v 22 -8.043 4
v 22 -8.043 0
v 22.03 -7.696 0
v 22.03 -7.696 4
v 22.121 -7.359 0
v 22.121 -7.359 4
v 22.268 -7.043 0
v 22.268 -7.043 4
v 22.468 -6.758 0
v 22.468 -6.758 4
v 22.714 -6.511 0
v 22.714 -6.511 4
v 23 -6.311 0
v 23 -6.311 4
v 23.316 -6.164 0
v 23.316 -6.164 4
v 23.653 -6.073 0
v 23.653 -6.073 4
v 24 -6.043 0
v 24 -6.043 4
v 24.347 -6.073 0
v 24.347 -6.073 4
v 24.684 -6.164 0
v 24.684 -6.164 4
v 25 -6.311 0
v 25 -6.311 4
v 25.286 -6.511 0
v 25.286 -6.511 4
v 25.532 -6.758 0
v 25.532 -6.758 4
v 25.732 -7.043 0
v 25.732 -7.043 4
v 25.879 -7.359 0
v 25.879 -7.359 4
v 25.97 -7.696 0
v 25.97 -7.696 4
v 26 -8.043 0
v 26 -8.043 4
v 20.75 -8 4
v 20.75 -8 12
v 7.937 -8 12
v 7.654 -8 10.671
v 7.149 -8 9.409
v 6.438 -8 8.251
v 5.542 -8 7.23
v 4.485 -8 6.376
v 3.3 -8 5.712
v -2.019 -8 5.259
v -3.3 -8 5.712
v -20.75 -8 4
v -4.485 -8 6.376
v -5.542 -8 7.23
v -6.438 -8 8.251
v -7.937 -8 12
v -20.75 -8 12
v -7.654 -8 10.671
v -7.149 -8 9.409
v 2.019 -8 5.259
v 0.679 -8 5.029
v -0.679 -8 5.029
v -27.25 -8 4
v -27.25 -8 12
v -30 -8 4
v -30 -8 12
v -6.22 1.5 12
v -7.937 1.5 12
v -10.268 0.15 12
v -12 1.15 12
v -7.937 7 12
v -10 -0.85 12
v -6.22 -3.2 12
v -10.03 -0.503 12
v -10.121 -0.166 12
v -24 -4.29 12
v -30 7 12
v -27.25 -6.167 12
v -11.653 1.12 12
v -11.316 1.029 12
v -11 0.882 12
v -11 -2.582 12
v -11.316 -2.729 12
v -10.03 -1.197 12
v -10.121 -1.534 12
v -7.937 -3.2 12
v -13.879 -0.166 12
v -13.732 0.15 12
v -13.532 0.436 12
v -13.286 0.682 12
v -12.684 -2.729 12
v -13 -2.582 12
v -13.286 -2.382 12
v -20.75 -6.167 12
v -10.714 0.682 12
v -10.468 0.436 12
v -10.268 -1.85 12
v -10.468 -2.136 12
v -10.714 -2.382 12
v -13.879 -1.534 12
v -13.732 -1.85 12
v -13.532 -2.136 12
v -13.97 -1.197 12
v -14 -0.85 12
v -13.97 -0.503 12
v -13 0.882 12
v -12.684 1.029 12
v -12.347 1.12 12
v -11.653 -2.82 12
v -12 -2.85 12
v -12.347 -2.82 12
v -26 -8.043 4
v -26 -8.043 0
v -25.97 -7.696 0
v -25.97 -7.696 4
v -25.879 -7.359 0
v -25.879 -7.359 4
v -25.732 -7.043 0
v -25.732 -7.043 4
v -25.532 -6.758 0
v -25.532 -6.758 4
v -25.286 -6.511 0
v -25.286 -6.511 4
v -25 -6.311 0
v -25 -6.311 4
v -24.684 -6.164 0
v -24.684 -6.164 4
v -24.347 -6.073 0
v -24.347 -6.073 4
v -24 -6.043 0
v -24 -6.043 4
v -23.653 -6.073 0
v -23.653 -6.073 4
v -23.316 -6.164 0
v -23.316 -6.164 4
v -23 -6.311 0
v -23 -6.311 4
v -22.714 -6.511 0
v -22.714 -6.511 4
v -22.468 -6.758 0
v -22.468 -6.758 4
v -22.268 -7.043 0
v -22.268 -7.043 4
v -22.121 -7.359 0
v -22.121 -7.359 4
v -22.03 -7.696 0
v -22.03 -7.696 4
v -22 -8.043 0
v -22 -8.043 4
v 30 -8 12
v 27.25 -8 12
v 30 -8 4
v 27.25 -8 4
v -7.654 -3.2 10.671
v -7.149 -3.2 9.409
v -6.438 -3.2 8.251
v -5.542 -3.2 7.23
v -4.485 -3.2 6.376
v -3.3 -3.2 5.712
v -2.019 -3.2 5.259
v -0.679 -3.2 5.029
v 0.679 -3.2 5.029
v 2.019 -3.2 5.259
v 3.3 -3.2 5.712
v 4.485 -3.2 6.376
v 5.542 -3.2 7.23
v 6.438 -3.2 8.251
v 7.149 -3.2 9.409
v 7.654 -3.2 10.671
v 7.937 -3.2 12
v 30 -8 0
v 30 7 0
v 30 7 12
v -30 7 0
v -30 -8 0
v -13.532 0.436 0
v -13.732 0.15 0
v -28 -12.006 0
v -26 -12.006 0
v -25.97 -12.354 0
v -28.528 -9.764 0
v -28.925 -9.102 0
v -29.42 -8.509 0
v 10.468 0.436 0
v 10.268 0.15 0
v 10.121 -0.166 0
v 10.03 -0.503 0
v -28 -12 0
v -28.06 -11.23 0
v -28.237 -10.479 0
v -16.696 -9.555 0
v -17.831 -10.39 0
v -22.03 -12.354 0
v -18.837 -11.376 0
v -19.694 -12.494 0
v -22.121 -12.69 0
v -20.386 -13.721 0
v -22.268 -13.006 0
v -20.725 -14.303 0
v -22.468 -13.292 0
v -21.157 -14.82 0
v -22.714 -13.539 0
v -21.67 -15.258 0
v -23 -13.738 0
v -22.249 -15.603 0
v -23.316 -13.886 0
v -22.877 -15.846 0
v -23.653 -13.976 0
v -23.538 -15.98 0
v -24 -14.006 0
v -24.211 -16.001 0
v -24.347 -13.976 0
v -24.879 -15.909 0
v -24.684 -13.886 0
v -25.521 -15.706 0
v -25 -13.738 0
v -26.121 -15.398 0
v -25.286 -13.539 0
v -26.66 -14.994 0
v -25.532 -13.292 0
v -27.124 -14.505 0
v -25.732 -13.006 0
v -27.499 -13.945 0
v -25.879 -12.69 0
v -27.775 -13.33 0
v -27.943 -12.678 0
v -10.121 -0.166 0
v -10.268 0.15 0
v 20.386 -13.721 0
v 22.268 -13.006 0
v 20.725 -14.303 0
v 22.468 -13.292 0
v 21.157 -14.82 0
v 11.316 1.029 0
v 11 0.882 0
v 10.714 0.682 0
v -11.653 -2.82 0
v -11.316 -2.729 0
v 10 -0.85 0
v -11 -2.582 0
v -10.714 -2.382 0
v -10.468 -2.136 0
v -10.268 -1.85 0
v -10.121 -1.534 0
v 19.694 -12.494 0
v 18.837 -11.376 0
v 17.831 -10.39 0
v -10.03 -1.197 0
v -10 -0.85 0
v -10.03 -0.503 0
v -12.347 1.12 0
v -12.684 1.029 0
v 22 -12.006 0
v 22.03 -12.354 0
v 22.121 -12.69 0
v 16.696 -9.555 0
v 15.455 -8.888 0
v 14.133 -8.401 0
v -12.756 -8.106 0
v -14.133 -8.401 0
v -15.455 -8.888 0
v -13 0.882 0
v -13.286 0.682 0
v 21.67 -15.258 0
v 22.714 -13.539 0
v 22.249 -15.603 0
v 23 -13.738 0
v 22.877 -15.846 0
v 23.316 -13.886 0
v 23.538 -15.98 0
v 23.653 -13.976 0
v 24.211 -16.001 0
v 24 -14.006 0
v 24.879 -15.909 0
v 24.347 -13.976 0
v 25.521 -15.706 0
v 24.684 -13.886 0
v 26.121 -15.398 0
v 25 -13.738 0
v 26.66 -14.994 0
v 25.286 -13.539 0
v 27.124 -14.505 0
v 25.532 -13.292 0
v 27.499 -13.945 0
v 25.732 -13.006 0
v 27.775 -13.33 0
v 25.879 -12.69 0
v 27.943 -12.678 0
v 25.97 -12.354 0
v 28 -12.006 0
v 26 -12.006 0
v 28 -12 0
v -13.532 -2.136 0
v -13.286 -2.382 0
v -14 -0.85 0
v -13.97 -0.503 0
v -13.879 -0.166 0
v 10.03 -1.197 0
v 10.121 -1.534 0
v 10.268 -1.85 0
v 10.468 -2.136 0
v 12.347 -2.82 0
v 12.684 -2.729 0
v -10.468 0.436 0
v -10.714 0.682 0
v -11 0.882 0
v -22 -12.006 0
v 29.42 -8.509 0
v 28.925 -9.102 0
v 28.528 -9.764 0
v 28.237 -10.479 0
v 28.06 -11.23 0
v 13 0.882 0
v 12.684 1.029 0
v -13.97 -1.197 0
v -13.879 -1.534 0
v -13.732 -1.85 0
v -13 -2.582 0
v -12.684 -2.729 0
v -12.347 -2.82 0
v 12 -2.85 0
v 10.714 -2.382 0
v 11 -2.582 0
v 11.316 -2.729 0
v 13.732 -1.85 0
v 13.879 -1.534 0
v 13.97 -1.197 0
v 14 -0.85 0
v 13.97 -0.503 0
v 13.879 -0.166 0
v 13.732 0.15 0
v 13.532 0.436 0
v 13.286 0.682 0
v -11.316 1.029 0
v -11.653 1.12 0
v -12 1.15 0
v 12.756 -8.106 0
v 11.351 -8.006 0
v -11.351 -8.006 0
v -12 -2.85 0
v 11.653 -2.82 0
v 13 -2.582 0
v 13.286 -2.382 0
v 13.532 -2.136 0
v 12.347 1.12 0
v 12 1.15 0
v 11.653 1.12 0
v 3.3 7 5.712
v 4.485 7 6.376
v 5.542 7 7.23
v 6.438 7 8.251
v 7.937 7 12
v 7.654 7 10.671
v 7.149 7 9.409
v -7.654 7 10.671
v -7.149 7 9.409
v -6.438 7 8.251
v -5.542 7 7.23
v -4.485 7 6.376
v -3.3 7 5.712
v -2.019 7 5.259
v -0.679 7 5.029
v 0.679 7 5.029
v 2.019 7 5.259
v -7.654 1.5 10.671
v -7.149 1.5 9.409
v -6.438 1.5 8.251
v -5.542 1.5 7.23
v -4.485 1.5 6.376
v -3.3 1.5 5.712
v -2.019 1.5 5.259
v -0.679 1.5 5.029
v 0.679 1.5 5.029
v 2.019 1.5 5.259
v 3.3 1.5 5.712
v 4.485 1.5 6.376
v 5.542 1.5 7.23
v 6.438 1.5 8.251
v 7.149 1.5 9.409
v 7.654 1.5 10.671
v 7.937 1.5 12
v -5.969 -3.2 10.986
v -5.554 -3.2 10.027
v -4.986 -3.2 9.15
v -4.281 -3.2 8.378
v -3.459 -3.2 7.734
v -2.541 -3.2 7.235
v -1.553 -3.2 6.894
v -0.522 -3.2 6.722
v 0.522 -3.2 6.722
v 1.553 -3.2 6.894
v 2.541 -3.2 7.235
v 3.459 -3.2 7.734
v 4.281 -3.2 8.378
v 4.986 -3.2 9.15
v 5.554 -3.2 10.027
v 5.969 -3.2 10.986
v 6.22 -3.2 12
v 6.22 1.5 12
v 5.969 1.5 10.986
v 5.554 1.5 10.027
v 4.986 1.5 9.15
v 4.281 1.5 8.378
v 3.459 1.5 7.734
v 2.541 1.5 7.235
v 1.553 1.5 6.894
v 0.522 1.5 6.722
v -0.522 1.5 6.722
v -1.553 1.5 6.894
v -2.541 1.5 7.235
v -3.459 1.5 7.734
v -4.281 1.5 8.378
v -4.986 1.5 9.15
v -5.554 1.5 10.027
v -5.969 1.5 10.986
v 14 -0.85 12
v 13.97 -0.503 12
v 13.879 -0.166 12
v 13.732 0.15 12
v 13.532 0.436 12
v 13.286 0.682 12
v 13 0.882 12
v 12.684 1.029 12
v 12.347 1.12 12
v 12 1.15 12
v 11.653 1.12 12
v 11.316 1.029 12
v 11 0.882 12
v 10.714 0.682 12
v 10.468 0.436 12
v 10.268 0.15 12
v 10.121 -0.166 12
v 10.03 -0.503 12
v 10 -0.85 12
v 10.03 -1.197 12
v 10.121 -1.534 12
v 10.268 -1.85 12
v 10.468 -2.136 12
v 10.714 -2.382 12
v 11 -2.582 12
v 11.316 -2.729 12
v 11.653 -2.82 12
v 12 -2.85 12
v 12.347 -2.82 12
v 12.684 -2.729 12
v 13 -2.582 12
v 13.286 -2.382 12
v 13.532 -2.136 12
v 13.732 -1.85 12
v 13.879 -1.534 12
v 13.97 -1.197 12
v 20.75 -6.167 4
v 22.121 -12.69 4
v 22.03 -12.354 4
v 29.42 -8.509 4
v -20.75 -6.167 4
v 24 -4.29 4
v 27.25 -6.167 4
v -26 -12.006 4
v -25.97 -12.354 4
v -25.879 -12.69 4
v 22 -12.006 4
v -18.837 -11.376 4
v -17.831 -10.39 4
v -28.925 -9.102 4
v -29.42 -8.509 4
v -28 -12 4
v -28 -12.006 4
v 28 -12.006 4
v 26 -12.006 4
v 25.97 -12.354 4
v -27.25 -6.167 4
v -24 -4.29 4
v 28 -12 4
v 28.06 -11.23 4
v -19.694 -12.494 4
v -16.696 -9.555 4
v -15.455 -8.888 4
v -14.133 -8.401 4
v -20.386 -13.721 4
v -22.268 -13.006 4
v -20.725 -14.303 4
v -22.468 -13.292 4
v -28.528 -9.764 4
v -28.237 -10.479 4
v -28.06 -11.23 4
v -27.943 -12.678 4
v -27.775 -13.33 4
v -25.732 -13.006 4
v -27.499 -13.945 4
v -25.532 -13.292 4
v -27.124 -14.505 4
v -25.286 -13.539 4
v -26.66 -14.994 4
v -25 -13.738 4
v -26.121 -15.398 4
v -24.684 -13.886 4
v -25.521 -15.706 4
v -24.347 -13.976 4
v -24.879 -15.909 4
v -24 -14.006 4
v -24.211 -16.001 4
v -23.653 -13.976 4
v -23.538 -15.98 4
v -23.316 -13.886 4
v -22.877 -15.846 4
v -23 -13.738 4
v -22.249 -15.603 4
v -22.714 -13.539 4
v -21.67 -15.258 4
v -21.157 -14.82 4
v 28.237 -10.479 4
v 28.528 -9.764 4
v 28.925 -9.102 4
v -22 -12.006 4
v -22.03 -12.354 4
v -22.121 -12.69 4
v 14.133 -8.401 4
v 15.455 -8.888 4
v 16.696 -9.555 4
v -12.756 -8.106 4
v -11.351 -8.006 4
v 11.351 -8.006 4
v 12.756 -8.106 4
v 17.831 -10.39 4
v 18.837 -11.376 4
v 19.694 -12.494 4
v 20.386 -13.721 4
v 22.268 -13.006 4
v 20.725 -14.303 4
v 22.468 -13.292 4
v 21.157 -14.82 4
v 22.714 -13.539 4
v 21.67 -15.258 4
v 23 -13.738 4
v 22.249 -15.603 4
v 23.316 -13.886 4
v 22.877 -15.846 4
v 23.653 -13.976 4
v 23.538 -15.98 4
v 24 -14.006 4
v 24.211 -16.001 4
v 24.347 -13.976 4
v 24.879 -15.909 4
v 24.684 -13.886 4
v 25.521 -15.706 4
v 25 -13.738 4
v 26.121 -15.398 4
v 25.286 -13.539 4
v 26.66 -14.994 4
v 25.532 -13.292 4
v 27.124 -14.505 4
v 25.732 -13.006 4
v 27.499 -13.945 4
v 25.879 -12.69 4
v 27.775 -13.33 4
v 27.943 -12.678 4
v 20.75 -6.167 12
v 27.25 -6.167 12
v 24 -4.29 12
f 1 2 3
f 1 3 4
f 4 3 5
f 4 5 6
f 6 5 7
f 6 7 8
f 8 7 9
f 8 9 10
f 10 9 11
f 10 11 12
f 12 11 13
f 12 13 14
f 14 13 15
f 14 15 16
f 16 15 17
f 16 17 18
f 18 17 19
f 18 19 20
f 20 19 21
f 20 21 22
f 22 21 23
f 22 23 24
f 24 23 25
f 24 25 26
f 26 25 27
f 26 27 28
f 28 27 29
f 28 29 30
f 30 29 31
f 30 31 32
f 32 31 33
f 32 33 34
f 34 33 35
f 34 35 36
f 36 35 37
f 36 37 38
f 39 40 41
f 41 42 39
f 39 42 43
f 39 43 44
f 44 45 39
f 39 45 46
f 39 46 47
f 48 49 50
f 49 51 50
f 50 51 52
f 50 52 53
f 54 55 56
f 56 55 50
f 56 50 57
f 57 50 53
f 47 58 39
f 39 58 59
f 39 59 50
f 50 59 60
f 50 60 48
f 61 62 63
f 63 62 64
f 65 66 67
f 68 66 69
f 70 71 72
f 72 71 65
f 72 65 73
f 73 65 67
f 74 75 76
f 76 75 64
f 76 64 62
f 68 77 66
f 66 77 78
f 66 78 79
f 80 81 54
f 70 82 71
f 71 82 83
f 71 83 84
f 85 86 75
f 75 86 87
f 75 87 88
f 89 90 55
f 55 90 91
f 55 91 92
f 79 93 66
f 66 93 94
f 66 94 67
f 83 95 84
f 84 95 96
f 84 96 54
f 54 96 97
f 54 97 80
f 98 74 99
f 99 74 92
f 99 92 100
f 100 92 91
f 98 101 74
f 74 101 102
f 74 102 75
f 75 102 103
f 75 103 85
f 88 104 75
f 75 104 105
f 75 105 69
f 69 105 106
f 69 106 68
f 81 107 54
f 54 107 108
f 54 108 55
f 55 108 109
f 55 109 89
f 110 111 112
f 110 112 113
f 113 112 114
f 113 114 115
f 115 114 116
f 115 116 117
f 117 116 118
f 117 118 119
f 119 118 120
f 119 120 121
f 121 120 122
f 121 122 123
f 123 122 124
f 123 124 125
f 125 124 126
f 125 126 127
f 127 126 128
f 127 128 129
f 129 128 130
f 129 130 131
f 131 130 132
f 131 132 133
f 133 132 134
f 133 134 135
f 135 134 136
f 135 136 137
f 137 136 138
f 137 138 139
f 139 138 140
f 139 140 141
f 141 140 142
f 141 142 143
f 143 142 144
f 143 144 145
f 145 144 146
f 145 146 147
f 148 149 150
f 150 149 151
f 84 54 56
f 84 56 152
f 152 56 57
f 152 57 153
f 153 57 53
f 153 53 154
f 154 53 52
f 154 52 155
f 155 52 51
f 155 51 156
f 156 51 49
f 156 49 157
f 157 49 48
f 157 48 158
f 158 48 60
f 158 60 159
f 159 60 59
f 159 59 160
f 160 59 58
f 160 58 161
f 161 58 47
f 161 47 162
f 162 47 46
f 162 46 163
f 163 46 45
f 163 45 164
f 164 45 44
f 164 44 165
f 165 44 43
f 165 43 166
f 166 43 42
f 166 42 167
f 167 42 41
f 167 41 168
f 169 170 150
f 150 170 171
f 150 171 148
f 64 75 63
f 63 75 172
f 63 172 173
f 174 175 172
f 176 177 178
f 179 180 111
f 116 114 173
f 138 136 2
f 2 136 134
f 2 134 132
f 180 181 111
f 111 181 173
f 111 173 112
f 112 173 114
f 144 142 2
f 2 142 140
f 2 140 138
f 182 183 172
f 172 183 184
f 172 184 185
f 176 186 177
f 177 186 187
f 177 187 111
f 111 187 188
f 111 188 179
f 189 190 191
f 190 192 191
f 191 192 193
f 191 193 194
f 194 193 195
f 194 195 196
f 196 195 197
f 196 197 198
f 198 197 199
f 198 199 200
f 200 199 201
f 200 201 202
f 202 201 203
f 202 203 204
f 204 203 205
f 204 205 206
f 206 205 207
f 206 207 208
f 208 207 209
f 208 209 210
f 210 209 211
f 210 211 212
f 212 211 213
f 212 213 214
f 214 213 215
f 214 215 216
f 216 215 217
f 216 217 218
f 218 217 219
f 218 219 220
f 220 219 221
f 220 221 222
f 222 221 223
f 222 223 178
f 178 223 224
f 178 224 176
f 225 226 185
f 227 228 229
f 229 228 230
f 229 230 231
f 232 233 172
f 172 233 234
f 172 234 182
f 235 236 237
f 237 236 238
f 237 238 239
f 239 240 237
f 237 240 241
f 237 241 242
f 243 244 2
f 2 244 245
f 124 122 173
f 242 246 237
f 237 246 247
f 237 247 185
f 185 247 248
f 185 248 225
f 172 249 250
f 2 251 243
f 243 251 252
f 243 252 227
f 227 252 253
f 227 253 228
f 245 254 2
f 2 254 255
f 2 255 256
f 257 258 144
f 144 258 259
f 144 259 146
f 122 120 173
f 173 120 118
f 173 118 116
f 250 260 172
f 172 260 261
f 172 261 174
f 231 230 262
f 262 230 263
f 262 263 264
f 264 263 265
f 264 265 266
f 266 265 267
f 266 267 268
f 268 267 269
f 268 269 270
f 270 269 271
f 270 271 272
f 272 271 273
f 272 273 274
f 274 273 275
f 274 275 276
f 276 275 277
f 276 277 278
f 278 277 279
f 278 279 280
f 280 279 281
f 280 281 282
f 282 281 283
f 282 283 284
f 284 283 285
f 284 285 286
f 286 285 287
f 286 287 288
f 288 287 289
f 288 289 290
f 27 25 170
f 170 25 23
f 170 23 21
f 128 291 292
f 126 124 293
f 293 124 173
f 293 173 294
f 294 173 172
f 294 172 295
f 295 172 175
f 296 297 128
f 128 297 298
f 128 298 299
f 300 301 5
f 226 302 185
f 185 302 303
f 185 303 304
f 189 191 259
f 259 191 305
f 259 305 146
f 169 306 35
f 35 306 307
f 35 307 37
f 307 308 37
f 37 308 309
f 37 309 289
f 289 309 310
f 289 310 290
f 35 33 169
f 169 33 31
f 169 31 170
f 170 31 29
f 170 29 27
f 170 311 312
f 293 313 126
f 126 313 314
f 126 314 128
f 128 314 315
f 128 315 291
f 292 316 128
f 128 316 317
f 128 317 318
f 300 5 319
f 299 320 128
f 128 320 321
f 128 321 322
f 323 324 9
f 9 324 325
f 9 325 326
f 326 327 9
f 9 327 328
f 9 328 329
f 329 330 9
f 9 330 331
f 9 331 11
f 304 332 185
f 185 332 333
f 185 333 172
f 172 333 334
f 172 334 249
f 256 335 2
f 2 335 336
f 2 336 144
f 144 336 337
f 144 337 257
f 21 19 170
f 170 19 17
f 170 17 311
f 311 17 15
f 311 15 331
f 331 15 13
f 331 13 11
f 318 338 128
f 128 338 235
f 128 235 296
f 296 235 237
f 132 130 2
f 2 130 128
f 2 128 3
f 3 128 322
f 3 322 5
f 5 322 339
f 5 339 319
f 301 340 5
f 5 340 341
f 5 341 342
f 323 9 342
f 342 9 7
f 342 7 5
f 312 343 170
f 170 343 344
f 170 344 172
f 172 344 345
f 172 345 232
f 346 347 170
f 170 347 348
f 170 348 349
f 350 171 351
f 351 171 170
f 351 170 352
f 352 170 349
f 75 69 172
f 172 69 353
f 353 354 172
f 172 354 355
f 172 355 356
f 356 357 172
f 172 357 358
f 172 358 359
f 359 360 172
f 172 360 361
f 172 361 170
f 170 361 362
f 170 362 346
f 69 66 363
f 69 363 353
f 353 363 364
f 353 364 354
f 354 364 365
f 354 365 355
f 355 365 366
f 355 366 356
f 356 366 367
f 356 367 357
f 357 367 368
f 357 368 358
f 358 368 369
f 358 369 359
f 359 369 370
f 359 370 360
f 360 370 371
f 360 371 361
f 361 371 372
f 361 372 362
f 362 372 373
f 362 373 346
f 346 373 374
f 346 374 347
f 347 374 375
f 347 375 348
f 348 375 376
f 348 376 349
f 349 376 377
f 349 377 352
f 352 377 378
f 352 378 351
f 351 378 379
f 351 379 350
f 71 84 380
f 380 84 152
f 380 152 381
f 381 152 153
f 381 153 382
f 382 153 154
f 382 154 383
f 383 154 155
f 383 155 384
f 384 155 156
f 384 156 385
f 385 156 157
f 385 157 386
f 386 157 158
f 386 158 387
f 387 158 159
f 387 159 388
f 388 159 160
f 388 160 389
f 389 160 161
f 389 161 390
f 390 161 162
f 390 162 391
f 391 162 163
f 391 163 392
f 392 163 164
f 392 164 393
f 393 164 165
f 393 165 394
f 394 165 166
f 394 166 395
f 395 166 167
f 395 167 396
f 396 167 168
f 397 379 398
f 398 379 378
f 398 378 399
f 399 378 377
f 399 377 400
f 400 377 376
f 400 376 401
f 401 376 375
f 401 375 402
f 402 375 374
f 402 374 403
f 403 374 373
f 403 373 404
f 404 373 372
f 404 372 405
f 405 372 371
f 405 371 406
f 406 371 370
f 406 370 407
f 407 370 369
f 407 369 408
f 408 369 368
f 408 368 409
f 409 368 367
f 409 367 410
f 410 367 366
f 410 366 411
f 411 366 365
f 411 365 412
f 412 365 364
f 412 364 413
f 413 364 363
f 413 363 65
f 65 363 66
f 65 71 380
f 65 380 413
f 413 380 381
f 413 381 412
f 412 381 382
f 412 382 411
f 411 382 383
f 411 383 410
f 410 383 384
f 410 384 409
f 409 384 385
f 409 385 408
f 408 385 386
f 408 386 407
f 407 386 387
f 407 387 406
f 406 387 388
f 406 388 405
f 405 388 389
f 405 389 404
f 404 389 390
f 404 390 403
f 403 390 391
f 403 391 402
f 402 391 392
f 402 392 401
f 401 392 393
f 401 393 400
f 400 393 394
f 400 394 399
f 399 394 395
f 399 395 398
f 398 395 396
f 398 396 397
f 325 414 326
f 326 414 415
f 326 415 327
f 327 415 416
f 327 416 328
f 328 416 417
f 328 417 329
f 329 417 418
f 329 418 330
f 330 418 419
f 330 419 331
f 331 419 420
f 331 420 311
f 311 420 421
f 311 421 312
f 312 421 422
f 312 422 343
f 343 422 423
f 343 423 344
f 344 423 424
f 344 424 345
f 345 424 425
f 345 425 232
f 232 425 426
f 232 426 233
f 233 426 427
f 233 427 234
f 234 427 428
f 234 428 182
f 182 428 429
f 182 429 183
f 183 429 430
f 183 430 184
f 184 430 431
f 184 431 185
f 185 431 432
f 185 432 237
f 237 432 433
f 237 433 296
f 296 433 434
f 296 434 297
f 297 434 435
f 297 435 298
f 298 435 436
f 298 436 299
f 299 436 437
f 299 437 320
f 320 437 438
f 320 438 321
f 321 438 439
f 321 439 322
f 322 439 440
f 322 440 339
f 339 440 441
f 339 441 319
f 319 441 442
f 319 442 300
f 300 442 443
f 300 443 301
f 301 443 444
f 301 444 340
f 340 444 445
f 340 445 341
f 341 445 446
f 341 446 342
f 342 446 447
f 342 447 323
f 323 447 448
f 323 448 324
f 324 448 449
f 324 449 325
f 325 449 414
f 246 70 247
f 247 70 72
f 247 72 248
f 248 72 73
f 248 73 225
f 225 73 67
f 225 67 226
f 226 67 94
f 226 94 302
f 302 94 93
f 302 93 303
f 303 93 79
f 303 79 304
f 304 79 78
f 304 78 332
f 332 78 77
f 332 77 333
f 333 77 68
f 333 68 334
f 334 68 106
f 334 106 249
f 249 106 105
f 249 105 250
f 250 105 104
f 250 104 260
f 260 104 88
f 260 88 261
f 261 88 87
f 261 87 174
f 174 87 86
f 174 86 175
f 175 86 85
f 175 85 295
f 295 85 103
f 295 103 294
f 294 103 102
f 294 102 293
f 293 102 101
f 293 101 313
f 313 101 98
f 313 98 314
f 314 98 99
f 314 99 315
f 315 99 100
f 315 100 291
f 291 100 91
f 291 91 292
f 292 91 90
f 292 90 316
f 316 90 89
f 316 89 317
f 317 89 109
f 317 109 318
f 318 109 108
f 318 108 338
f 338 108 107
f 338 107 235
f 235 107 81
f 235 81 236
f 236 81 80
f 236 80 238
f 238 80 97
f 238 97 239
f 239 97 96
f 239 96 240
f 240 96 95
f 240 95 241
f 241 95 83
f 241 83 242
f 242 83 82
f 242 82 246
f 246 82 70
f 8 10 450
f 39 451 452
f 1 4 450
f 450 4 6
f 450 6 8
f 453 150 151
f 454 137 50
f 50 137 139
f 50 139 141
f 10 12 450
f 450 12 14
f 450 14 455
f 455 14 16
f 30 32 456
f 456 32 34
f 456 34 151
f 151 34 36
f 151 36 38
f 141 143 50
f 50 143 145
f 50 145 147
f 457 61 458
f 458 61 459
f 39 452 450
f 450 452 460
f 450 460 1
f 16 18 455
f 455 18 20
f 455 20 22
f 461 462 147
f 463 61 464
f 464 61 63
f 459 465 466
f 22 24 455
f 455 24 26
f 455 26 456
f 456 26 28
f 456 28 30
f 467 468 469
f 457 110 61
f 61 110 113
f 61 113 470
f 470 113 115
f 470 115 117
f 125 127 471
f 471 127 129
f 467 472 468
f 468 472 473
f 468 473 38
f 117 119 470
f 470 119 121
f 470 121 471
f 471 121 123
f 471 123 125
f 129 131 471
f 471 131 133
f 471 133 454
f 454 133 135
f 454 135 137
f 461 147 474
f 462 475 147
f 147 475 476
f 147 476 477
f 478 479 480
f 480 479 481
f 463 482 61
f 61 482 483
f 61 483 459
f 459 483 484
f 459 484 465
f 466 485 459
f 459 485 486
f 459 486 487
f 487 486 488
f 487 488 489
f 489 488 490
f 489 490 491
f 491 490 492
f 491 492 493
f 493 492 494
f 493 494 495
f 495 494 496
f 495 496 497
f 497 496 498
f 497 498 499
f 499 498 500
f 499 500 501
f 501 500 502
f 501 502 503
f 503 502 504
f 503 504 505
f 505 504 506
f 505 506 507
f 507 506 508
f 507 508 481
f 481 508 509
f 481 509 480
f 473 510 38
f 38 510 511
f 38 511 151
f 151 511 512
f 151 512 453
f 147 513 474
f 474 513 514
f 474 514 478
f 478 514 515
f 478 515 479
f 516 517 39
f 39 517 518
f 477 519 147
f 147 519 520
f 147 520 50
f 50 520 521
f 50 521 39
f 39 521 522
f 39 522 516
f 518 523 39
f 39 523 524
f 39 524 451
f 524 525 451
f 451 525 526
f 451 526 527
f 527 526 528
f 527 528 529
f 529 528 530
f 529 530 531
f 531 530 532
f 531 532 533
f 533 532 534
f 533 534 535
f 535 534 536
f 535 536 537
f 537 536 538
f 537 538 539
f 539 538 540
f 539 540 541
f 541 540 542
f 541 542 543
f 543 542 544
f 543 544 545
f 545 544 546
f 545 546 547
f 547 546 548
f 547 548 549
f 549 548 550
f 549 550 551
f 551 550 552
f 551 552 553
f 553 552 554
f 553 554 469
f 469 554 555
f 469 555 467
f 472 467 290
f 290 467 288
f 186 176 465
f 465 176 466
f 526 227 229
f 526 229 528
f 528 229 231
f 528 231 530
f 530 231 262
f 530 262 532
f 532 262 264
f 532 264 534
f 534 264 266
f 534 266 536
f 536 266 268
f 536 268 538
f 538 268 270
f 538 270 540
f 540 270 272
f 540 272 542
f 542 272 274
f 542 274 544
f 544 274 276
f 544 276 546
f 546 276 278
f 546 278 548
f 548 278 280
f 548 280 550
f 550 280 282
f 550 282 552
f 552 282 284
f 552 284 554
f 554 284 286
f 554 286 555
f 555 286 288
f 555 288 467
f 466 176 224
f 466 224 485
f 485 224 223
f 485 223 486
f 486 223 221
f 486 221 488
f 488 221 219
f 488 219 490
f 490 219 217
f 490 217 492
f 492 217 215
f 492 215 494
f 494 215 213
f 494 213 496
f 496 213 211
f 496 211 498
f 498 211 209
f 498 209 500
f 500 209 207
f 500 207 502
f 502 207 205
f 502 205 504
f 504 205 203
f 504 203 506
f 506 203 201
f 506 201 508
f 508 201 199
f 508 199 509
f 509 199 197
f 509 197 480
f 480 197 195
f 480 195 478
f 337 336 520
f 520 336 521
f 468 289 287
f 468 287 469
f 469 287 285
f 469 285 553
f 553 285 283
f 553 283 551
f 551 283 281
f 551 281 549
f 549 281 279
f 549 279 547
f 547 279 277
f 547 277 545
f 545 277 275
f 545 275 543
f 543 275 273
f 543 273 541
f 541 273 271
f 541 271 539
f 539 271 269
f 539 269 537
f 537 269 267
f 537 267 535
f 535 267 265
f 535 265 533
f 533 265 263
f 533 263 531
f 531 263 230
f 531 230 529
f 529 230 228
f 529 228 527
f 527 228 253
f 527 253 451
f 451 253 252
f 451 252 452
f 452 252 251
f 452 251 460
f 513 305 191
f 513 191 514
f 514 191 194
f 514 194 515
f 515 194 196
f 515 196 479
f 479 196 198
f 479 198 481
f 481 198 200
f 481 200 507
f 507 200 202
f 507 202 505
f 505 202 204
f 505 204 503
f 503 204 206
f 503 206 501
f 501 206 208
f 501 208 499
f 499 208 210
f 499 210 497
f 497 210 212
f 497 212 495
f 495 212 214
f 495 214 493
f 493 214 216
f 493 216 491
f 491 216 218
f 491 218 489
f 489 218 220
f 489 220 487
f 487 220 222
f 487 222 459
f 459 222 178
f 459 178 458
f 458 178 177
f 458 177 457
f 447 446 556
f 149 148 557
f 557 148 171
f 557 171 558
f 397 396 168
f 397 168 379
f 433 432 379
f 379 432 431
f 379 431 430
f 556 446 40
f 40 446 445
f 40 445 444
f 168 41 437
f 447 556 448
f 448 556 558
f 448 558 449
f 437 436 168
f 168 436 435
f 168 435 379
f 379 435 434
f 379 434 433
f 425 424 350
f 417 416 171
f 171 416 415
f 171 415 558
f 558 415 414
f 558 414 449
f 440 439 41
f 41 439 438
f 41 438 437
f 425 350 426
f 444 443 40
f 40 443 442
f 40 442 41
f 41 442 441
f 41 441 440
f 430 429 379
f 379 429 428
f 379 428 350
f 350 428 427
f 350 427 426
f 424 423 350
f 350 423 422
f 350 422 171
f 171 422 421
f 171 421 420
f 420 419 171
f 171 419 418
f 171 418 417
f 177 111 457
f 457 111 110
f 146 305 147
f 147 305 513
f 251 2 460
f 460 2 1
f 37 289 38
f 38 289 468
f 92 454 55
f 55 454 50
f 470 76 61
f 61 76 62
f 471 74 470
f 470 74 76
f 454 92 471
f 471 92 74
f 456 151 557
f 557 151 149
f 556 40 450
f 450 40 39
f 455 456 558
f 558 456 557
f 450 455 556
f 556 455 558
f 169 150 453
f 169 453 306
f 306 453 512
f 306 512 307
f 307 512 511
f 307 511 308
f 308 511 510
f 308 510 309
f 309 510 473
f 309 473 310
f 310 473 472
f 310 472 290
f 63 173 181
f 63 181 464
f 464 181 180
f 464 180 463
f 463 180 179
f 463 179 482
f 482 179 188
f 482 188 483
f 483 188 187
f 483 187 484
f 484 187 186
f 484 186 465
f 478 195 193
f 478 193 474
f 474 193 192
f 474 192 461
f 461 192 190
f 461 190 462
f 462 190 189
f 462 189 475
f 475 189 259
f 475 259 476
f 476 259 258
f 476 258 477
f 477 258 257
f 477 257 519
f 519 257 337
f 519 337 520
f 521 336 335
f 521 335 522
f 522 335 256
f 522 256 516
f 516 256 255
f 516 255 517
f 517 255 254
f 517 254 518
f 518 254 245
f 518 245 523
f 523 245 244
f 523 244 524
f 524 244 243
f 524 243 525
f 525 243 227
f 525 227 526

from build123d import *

# Parameters (mm, degrees)
SCHIZZO1_W                   = 60
SCHIZZO1_H                   = 30
ESTRUSIONE_ESTRUSIONE1_DEPTH = 5
SCHIZZO2_W                   = 60
SCHIZZO2_H                   = 8
ESTRUSIONE_ESTRUSIONE2_DEPTH = 20
SCHIZZO3_R                   = 5
TAGLIO_ESTRUSIONE1_DEPTH     = 8
RACCORDO1_R                  = 20
SCHIZZO4_W                   = 60
SCHIZZO4_H                   = 15
ESTRUSIONE_ESTRUSIONE3_DEPTH = 10
SCHIZZO6_R                   = 8
TAGLIO_ESTRUSIONE2_DEPTH     = 15
SCHIZZO8_W                   = 60
SCHIZZO8_H                   = 4.7
ESTRUSIONE_ESTRUSIONE4_DEPTH = 10
SCHIZZO9_R                   = 6.3
TAGLIO_ESTRUSIONE3_DEPTH     = 5
SCHIZZO10_R                  = 2
TAGLIO_ESTRUSIONE4_DEPTH     = 37.742346142
SCHIZZO11_W                  = 60
SCHIZZO11_H                  = 8
TAGLIO_ESTRUSIONE5_DEPTH     = 25
SCHIZZO14_W                  = 60
SCHIZZO14_H                  = 5
TAGLIO_ESTRUSIONE7_DEPTH     = 7
SCHIZZO12_R                  = 2
ESTRUSIONE_ESTRUSIONE5_DEPTH = 4
SCHIZZO17_W                  = 60
SCHIZZO17_H                  = 15
TAGLIO_ESTRUSIONE9_DEPTH     = 3
TAGLIO_ESTRUSIONE10_REACH    = 38.058
TAGLIO_ESTRUSIONE12_DEPTH    = 8
RACCORDO2_R                  = 5
RACCORDO3_R                  = 10


with BuildPart() as part:
    # Schizzo1 → Estrusione-Estrusione1 (new body)
    with BuildSketch(Plane.XY):
        Rectangle(SCHIZZO1_W, SCHIZZO1_H)
    extrude(amount=ESTRUSIONE_ESTRUSIONE1_DEPTH)

    # Schizzo2 → Estrusione-Estrusione2 (add)
    with BuildSketch(Plane.XY.offset(5)):
        with Locations((0, 11)):
            Rectangle(SCHIZZO2_W, SCHIZZO2_H)
    extrude(amount=ESTRUSIONE_ESTRUSIONE2_DEPTH)

    # Schizzo3 → Taglio-Estrusione1 (cut)
    with BuildSketch(Plane(origin=(0, 15, 0), x_dir=(1, 0, 0), z_dir=(0, 1, 0))):
        with Locations(Location((11, -13, 0), (0, 0, 270))):
            Circle(SCHIZZO3_R)
        with Locations(Location((-11, -13, 0), (0, 0, 270))):
            Circle(SCHIZZO3_R)
    extrude(amount=-TAGLIO_ESTRUSIONE1_DEPTH, mode=Mode.SUBTRACT)

    # Raccordo1
    raccordo1_edges = [part.edges().sort_by_distance(p)[0] for p in [
        (30, 11, 25),
        (-30, 11, 25),
    ]]
    fillet(raccordo1_edges, radius=RACCORDO1_R)

    # Schizzo4 → Estrusione-Estrusione3 (add)
    with BuildSketch(Plane.XY.offset(5)):
        with Locations((0, -0.5)):
            Rectangle(SCHIZZO4_W, SCHIZZO4_H)
    extrude(amount=ESTRUSIONE_ESTRUSIONE3_DEPTH)

    # Schizzo6 → Taglio-Estrusione2 (cut)
    with BuildSketch(Plane.XZ.offset(8)):
        with Locations((0, 13)):
            Circle(SCHIZZO6_R)
    extrude(amount=-TAGLIO_ESTRUSIONE2_DEPTH, mode=Mode.SUBTRACT)

    # Schizzo8 → Estrusione-Estrusione4 (add)
    with BuildSketch(Plane.XY.offset(15)):
        with Locations((0, -0.85)):
            Rectangle(SCHIZZO8_W, SCHIZZO8_H)
    extrude(amount=-ESTRUSIONE_ESTRUSIONE4_DEPTH)

    # Schizzo9 → Taglio-Estrusione3 (cut)
    with BuildSketch(Plane.XZ.offset(3.2)):
        with Locations((0, 13)):
            Circle(SCHIZZO9_R)
    extrude(amount=-TAGLIO_ESTRUSIONE3_DEPTH, mode=Mode.SUBTRACT)

    # Schizzo10 → Taglio-Estrusione4 (cut, through all)
    with BuildSketch(Plane.XY.offset(15)):
        with Locations((12, -0.85)):
            Circle(SCHIZZO10_R)
        with Locations((-12, -0.85)):
            Circle(SCHIZZO10_R)
    extrude(amount=-TAGLIO_ESTRUSIONE4_DEPTH, mode=Mode.SUBTRACT)

    # Schizzo11 → Taglio-Estrusione5 (cut)
    with BuildSketch(Plane(origin=(0, 0, 0), x_dir=(-1, 0, 0), z_dir=(0, 0, -1))):
        with Locations((0, 11)):
            Rectangle(SCHIZZO11_W, SCHIZZO11_H)
    extrude(amount=-TAGLIO_ESTRUSIONE5_DEPTH, mode=Mode.SUBTRACT)

    # Schizzo14 → Taglio-Estrusione7 (cut)
    with BuildSketch(Plane.XZ.offset(15)):
        with Locations((0, 2.5)):
            Rectangle(SCHIZZO14_W, SCHIZZO14_H)
    extrude(amount=-TAGLIO_ESTRUSIONE7_DEPTH, mode=Mode.SUBTRACT)

    # Schizzo12 → Estrusione-Estrusione5 (add)
    with BuildSketch(Plane.XY):
        with BuildLine():
            Line((-8, -8.006435696), (8, -8.006435696))
            Line((8, -8.006435696), (20, -8.006435696))
            Line((20, -8.006435696), (20, -12.006435696))
            ThreePointArc((20, -12.006435696), (24, -16.006435696), (28, -12.006435696))
            Line((28, -12.006435696), (28, -5.256435696))
            Line((28, -5.256435696), (-28, -5.256435696))
            Line((-28, -5.256435696), (-28, -12.006435696))
            ThreePointArc((-28, -12.006435696), (-24, -16.006435696), (-20, -12.006435696))
            Line((-20, -12.006435696), (-20, -8.006435696))
            Line((-20, -8.006435696), (-8, -8.006435696))
        make_face()
        with Locations((24, -12.006435696)):
            Circle(SCHIZZO12_R, mode=Mode.SUBTRACT)
        with Locations(Location((-24, -12.006435696, 0), (0, 0, 180))):
            Circle(SCHIZZO12_R, mode=Mode.SUBTRACT)
    extrude(amount=ESTRUSIONE_ESTRUSIONE5_DEPTH)

    # Schizzo17 → Taglio-Estrusione9 (cut)
    with BuildSketch(Plane.XY.offset(15)):
        with Locations((0, -0.5)):
            Rectangle(SCHIZZO17_W, SCHIZZO17_H)
    extrude(amount=-TAGLIO_ESTRUSIONE9_DEPTH, mode=Mode.SUBTRACT)

    # Taglio-Estrusione10: up to this face of the body (flat: up to its plane)
    taglio_estrusione10_end = Plane(part.part.faces().sort_by_distance((-18.942934314, -0.495179718, 12))[0])
    # Schizzo18 → Taglio-Estrusione10 (cut, up to the picked face)
    with BuildSketch(Plane(origin=(0, 0, 0), x_dir=(-1, 0, 0), z_dir=(0, 0, -1)), mode=Mode.PRIVATE) as taglio_estrusione10_sk1:
        with BuildLine():
            Line((-26, -8.043105695), (-26, -12.006435696))
            Line((-26, -12.006435696), (-22, -12.006435696))
            Line((-22, -12.006435696), (-22, -8.043105695))
            ThreePointArc((-22, -8.043105695), (-24, -6.043105695), (-26, -8.043105695))
        make_face()
    taglio_estrusione10_tool1 = split(extrude(taglio_estrusione10_sk1.sketch, amount=-TAGLIO_ESTRUSIONE10_REACH, mode=Mode.PRIVATE), bisect_by=taglio_estrusione10_end, keep=Keep.BOTH, mode=Mode.PRIVATE)
    # Schizzo18 → Taglio-Estrusione10 (cut, up to the picked face)
    with BuildSketch(Plane(origin=(0, 0, 0), x_dir=(-1, 0, 0), z_dir=(0, 0, -1)), mode=Mode.PRIVATE) as taglio_estrusione10_sk2:
        with BuildLine():
            Line((22, -12.006435696), (22, -8.043105695))
            ThreePointArc((22, -8.043105695), (24, -6.043105695), (26, -8.043105695))
            Line((26, -8.043105695), (26, -12.006435696))
            Line((26, -12.006435696), (22, -12.006435696))
        make_face()
    taglio_estrusione10_tool2 = split(extrude(taglio_estrusione10_sk2.sketch, amount=-TAGLIO_ESTRUSIONE10_REACH, mode=Mode.PRIVATE), bisect_by=taglio_estrusione10_end, keep=Keep.BOTH, mode=Mode.PRIVATE)
    add(taglio_estrusione10_tool1.solids().sort_by(Axis((24, -9.221369, 0), (0, 0, 1)))[0], mode=Mode.SUBTRACT)
    add(taglio_estrusione10_tool2.solids().sort_by(Axis((-24, -9.221369, 0), (0, 0, 1)))[0], mode=Mode.SUBTRACT)

    # Schizzo20 → Taglio-Estrusione12 (cut)
    with BuildSketch(Plane.XY.offset(4)):
        Polygon((-27.25, -9.91949407), (-24, -11.795882445), (-20.75, -9.91949407), (-20.75, -6.166717321), (-24, -4.290328946), (-27.25, -6.166717321), align=None)
    taglio_estrusione12 = extrude(amount=TAGLIO_ESTRUSIONE12_DEPTH, mode=Mode.SUBTRACT)

    # Specchia1: Taglio-Estrusione12 across plane
    add(taglio_estrusione12.mirror(Plane(origin=(0, 0, 0), x_dir=(0, 0, 1), z_dir=(1, 0, 0))), mode=Mode.SUBTRACT)

    # Raccordo2
    # the kernel refuses this fillet: 5 mm, written as the material it adds along each edge
    with BuildSketch(Plane(origin=(28, -8, 4), x_dir=(1, 0, 0), z_dir=(0, 0, -1))) as raccordo2_piece_1:
        with BuildLine():
            CenterArc((5, 4), RACCORDO2_R, 180, 53.130102354)
            Line((0, 4), (0, 0))
            Line((0, 0), (2, 0))
        make_face()
    extrude(amount=4)
    with BuildSketch(Plane(origin=(-28, -8, 0), x_dir=(2.553025400590997e-07, -0.9999999999999674, 0), z_dir=(0, 0, 1))) as raccordo2_piece_2:
        with BuildLine():
            CenterArc((4.000000448, -4.999998721), RACCORDO2_R, 89.959025437, 53.171095231)
            Line((-5.11e-07, -2), (-0.400000606, -1.700000128))
            ThreePointArc((-0.400000606, -1.700000128), (-0.500000255, -0.999999872), (-0.5, 1.28e-07))
            Line((-0.5, 1.28e-07), (1.28e-07, 0.5))
            Line((1.28e-07, 0.5), (4.003933724, 0.499999872))
            Line((4.003933724, 0.499999872), (4.003576153, 0))
        make_face()
    extrude(amount=4)

    # Raccordo3
    raccordo3_edges = [part.edges().sort_by_distance(p)[0] for p in [
        (-20, -8.006435696, 2),
        (20, -8.006435696, 2),
    ]]
    fillet(raccordo3_edges, radius=RACCORDO3_R)


solid = part.part
